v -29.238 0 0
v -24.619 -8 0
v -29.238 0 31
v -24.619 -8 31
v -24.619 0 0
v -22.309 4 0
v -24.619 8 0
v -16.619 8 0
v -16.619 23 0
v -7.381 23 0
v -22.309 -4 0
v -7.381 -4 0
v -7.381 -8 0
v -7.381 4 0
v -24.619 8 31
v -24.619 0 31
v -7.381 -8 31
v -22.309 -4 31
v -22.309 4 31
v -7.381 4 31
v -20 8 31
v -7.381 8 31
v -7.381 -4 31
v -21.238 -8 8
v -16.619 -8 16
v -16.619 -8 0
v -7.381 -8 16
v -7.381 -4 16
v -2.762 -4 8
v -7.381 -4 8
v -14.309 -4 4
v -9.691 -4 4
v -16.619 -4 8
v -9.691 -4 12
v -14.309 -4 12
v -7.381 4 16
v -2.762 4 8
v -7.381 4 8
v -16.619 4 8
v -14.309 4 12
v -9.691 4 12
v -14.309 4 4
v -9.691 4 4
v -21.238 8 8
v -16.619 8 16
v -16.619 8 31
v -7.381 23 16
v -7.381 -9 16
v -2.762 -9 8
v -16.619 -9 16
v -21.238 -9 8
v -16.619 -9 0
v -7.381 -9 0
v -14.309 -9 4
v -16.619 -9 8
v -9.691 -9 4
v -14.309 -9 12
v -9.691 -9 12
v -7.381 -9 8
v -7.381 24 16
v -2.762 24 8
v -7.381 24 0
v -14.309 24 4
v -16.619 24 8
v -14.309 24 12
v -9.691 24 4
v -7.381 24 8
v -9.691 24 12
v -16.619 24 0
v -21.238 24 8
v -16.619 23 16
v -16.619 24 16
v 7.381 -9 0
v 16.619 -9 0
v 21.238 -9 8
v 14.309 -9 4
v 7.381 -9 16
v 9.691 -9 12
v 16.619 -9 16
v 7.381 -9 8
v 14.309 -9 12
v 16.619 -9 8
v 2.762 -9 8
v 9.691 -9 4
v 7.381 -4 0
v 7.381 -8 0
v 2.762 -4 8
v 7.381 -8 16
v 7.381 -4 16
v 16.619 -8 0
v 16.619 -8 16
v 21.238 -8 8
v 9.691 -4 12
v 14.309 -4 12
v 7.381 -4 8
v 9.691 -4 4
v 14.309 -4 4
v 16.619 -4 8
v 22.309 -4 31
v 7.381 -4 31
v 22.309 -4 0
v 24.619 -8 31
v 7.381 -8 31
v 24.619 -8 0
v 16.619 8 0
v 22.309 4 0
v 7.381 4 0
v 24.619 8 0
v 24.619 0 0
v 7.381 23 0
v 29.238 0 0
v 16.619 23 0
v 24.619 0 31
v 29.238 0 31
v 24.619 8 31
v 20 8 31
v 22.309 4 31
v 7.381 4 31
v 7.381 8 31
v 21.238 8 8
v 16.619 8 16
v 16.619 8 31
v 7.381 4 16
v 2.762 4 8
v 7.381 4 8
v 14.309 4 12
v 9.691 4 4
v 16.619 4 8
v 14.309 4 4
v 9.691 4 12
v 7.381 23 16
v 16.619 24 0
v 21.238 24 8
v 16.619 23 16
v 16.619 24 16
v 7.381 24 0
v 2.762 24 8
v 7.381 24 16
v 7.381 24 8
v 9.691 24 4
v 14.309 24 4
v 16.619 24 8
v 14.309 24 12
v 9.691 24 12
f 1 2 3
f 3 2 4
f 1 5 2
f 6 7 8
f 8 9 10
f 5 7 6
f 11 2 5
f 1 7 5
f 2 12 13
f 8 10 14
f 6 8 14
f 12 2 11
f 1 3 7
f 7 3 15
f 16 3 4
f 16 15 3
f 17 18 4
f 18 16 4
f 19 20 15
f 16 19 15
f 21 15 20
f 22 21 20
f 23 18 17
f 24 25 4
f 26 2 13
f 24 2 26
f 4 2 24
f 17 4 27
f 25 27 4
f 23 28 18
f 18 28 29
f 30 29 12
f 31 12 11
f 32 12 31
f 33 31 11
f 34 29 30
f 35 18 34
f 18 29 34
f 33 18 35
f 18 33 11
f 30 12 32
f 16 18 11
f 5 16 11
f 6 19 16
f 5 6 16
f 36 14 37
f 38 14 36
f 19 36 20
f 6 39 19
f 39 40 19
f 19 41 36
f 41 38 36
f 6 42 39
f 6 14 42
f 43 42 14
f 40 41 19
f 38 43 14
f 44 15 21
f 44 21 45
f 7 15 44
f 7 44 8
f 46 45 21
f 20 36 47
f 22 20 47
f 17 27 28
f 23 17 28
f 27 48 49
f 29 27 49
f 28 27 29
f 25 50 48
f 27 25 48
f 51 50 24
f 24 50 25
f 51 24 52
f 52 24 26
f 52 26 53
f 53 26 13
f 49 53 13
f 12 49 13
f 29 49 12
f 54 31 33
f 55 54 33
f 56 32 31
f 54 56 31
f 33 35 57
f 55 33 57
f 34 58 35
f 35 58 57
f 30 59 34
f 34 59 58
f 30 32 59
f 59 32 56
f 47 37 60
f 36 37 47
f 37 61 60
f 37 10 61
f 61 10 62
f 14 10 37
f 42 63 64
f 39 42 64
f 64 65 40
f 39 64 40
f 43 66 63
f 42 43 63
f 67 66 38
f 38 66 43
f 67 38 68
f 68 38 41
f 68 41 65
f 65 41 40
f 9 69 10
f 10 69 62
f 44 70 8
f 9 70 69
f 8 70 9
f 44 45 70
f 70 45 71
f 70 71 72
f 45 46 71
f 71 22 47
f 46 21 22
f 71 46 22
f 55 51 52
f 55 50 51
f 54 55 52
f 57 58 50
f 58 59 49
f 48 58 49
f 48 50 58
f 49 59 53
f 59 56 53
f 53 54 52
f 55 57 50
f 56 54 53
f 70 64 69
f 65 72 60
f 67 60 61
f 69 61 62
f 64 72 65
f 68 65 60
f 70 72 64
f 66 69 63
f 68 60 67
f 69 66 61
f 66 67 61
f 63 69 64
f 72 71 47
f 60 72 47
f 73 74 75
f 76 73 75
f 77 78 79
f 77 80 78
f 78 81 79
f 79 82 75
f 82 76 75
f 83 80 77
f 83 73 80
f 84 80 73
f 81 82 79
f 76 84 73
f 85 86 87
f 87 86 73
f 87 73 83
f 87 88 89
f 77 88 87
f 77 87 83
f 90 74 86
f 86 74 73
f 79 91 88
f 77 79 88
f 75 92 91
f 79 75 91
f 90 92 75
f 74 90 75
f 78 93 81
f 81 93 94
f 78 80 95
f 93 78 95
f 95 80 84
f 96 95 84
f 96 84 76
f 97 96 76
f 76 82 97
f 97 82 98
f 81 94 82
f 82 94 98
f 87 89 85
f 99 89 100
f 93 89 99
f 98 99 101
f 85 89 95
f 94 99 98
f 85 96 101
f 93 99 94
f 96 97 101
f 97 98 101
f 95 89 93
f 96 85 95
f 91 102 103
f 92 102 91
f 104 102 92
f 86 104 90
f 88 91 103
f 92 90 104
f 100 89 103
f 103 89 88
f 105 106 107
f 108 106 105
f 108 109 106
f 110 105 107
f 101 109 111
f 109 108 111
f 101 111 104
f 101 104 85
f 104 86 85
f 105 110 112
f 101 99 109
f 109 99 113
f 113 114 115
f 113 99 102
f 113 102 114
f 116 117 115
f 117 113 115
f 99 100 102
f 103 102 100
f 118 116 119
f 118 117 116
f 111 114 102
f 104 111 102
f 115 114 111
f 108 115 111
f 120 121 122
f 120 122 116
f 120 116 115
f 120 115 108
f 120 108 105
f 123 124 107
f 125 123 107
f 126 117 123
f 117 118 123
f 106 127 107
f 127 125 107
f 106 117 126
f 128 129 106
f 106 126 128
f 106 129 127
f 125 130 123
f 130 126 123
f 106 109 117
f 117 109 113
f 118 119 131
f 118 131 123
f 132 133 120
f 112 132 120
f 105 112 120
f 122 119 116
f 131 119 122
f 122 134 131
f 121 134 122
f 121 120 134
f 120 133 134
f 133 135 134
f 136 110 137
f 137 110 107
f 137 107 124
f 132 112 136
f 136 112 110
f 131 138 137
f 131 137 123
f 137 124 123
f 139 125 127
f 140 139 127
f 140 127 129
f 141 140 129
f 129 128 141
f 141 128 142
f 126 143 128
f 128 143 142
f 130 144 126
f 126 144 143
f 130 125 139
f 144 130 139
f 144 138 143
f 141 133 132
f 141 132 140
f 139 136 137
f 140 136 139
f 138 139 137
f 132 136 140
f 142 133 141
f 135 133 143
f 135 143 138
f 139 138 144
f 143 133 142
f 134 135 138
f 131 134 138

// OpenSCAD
include <3dm1.scad>;

!for(side = [0, 1]) mirror([side, 0, 0]) translate([-rod_size * 2.5, 0, 0]) z_top_clamp();
